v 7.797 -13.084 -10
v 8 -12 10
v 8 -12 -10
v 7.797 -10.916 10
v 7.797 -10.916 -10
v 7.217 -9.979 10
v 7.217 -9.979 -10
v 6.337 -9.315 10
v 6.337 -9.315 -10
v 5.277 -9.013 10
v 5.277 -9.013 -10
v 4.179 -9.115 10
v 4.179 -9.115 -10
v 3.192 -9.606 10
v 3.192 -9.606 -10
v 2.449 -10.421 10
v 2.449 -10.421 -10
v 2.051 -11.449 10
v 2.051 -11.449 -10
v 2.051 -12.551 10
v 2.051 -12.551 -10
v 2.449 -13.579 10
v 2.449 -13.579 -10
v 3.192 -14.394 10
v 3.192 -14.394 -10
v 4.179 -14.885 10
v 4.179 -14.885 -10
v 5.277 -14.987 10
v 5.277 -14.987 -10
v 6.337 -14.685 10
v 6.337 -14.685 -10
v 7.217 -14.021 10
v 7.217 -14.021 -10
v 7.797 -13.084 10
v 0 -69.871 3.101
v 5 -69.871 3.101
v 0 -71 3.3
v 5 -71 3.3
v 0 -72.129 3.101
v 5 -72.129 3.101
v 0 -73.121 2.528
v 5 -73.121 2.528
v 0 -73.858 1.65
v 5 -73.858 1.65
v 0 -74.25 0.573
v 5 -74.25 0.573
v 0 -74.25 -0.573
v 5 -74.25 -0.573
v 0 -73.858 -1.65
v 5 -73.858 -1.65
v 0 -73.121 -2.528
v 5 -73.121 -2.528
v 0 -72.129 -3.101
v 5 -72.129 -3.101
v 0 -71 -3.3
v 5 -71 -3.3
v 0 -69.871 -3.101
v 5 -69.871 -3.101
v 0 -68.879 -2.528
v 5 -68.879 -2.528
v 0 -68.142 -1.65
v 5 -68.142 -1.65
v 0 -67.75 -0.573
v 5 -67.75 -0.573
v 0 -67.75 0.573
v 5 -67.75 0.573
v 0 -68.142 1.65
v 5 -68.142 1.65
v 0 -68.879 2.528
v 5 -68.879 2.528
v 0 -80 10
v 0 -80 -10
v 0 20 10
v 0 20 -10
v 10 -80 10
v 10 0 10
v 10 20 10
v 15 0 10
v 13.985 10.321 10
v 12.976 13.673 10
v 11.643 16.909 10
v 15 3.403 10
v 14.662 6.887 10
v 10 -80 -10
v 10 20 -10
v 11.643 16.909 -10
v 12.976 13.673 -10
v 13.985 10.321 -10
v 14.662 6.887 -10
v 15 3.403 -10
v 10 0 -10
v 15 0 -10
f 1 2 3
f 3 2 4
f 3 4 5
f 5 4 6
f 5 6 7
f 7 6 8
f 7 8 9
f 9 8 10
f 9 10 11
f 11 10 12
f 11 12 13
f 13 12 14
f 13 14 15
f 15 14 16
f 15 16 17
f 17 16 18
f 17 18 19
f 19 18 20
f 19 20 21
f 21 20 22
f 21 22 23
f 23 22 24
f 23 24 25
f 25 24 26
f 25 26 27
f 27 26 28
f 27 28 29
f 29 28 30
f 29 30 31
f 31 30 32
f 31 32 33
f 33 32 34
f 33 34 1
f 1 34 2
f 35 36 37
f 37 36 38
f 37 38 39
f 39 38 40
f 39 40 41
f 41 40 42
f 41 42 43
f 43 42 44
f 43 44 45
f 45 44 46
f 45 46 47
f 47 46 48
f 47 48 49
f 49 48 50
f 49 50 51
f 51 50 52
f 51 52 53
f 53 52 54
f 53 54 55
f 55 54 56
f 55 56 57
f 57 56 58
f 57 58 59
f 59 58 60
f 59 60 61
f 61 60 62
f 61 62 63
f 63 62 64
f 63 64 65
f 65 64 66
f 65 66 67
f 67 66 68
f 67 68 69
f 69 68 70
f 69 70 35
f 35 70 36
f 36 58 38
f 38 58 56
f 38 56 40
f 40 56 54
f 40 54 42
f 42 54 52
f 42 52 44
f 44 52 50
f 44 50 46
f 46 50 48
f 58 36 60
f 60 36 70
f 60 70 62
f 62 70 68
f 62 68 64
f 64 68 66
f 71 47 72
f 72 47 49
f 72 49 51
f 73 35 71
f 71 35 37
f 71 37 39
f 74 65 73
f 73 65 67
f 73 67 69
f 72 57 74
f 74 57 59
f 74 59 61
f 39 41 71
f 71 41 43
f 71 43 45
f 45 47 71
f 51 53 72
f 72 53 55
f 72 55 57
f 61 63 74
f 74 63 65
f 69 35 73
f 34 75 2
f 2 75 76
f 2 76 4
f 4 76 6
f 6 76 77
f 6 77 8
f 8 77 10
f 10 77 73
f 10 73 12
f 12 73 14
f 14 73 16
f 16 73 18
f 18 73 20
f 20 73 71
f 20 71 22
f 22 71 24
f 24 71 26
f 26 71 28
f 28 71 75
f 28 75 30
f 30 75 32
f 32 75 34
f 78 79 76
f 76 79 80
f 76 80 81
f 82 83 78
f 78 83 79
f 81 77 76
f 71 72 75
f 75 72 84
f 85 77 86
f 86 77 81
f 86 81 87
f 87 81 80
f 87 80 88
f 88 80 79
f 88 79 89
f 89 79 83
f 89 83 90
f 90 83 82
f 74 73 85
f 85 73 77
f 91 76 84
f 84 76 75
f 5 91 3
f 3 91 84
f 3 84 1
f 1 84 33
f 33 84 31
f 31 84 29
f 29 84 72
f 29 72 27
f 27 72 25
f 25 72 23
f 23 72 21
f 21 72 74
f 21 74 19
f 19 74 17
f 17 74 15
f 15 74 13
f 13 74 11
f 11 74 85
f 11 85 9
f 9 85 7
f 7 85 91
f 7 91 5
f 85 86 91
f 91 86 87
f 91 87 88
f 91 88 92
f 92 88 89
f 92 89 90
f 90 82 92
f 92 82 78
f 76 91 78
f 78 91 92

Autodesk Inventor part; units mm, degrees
ref_plane "YZ Plane" through (0, 0, 0) normal (1, 0, 0) x (0, 1, 0)
ref_plane "XZ Plane" through (0, 0, 0) normal (0, 1, 0) x (-1, 0, 0)
ref_plane "XY Plane" through (0, 0, 0) normal (0, 0, 1) x (1, 0, 0)
sketch "스케치1" plane through (0, 0, 0) normal (0, 1, 0) x (-1, 0, 0)
  line L0 (-10, 10) -> (10, 10)
  line L1 (10, 10) -> (10, -10)
  line L2 (10, -10) -> (-10, -10)
  line L3 (-10, -10) -> (-10, 10)
  line L4 (-10, 10) -> (10, -10) construction
  line L5 (10, 10) -> (-10, -10) construction
  line L6 (-10, -10) -> (-15, -10)
  line L7 (-15, -10) -> (-15, 10)
  line L8 (-15, 10) -> (-10, 10)
  line L9 (-10, 10) -> (-10, -10)
  point P0 (0, 0)
  dimension "d0" = 20
  dimension "d1" = 20
  dimension "d2" = 5
extrude "돌출1" add sketch "스케치1" along normal blind 20
extrude "돌출2" add sketch "스케치1" against normal blind 80 contours L0 L1 L2 L3
sketch "스케치2" plane through (-10, 20, -10) normal (-1, 0, 0) x (0, 0, 1)
  line L0 (20, -100) -> (20, 0) projected
  line L1 (0, 0) -> (20, 0) projected
  line L2 (0, 0) -> (0, -100) projected
  line L3 (20, -100) -> (0, -100) projected
  circle A0 centre (10, -91) radius 3.3
  point P0 (10, -20)
  dimension "d7" = 6.6
  dimension "d8" = 9
sketch "스케치3" plane through (-10, 20, 10) normal (0, 0, 1) x (1, 0, 0)
  line L0 (20, -20) -> (25, -20) projected
  line L1 (25, -20) -> (25, 0) projected
  line L2 (0, 0) -> (25, 0) projected
  line L3 (0, -100) -> (0, 0) projected
  line L4 (20, -100) -> (0, -100) projected
  line L5 (20, -20) -> (20, -100) projected
  line L6 (25, -20) -> (25, 0) projected
  line L7 (25, 0) -> (0, 0) projected
  arc A0 (25, -20) -> (20, 0) centre (-10.6945, -18.2986) ccw
  line L8 (20, 0) -> (25, 0)
  line L9 (25, 0) -> (25, -20)
  point P0 (10, -20)
  point P1 (20, 0)
  point P2 (25, -16.5972)
extrude "돌출4" cut sketch "스케치3" against normal blind 20 contours A0 L2 L1
extrude "돌출5" cut sketch "스케치2" against normal blind 10
sketch "스케치4" plane through (-10, -71, 0) normal (-1, 0, 0) x (0, 0, 1)
  circle A0 centre (0, 0) radius 3.3 projected
  point P0 (0, 71)
extrude "돌출6" cut sketch "스케치4" against normal blind 15
sketch "스케치5" plane through (10, 0, 10) normal (0, 0, 1) x (1, 0, 0)
  line L0 (-10, 20) -> (-10, -80) projected
  line L1 (0, -80) -> (-10, -80) projected
  line L2 (0, 0) -> (0, -80) projected
  line L3 (0, 0) -> (5, 0) projected
  line L4 (5, 0) -> (5, 3.4028) projected
  arc A0 (5, 3.4028) -> (0, 20) centre (-30.6945, 1.7014) ccw projected
  line L5 (-10, 20) -> (0, 20) projected
  circle A1 centre (-5, -12) radius 3
  point P0 (-10, 0)
  dimension "d19" = 6
  dimension "d20" = 32
extrude "돌출7" cut sketch "스케치5" against normal blind 20 contours A1
properties part number "final_탄두조절자ver0.1"
